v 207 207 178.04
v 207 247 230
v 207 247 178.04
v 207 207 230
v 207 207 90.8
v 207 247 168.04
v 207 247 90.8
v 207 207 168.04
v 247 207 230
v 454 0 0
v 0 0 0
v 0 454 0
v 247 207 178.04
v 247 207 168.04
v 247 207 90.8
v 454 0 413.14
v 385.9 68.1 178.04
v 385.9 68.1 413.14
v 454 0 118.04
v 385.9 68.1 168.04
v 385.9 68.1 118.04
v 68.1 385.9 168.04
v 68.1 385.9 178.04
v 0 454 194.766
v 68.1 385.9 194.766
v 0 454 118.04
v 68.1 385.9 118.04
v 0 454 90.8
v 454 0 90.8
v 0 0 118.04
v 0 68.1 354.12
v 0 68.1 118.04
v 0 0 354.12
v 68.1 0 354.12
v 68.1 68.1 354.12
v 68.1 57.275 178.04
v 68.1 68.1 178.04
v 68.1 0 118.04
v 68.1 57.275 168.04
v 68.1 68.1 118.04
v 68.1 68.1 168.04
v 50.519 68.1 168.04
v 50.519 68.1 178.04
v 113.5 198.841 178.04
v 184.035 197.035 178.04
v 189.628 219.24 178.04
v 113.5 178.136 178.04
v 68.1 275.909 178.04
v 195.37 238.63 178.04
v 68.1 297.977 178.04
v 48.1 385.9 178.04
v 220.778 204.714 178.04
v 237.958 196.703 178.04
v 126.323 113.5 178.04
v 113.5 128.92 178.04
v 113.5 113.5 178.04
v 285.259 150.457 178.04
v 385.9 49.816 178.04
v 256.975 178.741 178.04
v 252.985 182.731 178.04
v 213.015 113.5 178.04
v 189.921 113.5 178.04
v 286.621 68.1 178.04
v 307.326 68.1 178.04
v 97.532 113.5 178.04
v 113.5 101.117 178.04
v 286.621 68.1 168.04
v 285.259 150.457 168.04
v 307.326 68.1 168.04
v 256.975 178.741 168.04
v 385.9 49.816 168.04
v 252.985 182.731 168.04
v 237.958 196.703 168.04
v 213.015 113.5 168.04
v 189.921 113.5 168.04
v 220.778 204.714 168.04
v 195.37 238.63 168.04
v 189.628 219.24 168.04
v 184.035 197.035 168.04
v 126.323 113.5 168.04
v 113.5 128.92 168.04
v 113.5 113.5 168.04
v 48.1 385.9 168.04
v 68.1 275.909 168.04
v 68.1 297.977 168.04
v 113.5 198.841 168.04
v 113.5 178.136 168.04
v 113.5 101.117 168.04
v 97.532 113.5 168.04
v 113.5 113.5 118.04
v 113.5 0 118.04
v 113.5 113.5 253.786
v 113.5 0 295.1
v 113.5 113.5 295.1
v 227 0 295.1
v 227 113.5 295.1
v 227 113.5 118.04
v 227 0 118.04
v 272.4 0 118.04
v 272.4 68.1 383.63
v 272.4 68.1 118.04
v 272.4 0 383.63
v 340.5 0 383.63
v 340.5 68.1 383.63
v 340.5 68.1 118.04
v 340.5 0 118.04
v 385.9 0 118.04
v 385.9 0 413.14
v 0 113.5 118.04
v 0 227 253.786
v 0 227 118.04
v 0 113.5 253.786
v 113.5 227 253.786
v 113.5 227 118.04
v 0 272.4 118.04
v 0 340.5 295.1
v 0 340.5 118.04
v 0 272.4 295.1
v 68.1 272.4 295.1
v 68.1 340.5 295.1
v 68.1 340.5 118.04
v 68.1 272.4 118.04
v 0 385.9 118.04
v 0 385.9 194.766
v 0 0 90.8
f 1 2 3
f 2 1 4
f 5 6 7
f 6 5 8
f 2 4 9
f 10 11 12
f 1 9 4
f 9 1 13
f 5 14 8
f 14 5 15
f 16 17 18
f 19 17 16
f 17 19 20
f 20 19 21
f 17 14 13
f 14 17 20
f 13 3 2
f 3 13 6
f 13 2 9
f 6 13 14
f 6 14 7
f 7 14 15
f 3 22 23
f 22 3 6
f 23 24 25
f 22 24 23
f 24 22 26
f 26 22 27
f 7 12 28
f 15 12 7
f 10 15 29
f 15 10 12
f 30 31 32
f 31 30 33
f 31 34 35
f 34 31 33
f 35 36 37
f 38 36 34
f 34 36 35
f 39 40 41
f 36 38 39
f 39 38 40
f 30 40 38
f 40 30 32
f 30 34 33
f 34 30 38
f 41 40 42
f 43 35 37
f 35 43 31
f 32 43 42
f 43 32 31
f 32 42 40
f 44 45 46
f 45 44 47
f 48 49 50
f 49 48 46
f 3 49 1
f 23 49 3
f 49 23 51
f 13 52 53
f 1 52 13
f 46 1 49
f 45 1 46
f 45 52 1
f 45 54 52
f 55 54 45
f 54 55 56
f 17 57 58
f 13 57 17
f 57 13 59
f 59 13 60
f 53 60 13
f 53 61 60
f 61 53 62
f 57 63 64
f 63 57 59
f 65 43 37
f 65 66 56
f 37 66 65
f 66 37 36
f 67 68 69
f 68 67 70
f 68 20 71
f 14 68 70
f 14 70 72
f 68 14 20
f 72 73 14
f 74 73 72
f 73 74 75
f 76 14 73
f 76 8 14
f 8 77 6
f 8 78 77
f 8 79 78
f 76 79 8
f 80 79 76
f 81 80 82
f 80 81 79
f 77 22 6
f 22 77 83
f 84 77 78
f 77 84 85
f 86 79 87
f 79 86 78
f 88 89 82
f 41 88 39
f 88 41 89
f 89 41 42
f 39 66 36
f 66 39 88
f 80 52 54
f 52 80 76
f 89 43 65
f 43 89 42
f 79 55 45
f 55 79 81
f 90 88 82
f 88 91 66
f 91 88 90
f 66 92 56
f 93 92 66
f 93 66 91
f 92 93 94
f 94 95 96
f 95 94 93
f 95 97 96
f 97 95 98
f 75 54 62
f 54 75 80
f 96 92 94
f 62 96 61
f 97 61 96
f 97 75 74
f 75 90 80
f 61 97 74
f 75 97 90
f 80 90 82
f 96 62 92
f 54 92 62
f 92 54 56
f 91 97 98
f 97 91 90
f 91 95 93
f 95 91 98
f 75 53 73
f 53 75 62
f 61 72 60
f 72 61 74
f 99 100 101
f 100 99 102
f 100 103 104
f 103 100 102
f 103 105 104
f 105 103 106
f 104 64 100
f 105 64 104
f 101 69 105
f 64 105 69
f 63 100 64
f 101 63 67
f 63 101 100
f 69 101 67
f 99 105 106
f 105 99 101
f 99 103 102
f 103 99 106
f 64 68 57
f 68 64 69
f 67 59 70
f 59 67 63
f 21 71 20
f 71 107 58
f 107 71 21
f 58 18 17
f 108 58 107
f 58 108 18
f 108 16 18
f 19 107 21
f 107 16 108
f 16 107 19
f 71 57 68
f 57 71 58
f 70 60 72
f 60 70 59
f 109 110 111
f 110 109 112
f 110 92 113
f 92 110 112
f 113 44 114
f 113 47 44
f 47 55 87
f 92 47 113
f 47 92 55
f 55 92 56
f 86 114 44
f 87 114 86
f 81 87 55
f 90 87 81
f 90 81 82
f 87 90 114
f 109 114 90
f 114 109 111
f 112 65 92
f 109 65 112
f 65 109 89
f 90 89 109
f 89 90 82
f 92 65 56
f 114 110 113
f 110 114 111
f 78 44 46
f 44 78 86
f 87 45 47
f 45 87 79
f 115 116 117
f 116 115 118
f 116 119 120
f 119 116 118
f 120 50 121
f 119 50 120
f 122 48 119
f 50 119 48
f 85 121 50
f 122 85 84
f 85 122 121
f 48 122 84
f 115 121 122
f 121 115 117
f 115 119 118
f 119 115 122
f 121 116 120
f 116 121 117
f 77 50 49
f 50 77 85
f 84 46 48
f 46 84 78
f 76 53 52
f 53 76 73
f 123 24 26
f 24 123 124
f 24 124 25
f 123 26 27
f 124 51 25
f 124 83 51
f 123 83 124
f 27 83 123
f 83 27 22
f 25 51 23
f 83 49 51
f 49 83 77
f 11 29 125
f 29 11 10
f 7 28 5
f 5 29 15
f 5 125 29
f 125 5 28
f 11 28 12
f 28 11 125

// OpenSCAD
logo_base_size=454;
logo_base_height=logo_base_size*.20;

pillar_z_offset = 2;
pillar_7_x_scale = .25;
pillar_7_z_scale =  5;

pillar_spacing = .1;
pillar_vs_base_scaling_factor = .65;

normal_pillar_base = .15;
wide_pillar_base = .25;


analytics_pillar_support_height = 230;

module analytics_pillar(base_ratio, 
                        height_ratio,
                        x_offset_ratio, 
                        y_offset_ratio, 
                        z_offset_ratio,
                        support_angle){

    difference(){
        pillar_base = logo_base_size * base_ratio;
        pillar_height = logo_base_height * height_ratio;
        
        if(y_offset_ratio > 0) {
                y_offset = (y_offset_ratio * logo_base_size) - pillar_base;
                translate([0,
                    y_offset, 
                    z_offset_ratio*logo_base_height])
                       
            union(){
                cube([pillar_base,pillar_base,pillar_height]);
                color("red")
                translate([pillar_base/2-10, pillar_base/2-10,50])
                rotate(support_angle)
                cube([300, 20, 10]);
            }
            
        } else {
            translate([(x_offset_ratio * logo_base_size) - pillar_base,
                (y_offset_ratio * logo_base_size), 
                 z_offset_ratio*logo_base_height]) 
            
            union(){
                cube([pillar_base,pillar_base,pillar_height]);
                color("red")
                translate([pillar_base/2+10,pillar_base/2,50])
                rotate(support_angle)
                cube([300, 20, 10]);
            }
                      
        }
        
        linear_extrude(1000)
            polygon(points =[
                                [logo_base_size,logo_base_size],
                                [logo_base_size,0],
                                [0,logo_base_size]
                             ]
            );
        
    }
    
    
}




difference(){
    union(){
        //base
        linear_extrude(logo_base_height)
            polygon(points =[
                                [0,0],
                                [logo_base_size,0],
                                [0,logo_base_size]
                            ]
                    );



        //Origin
        analytics_pillar(base_ratio=normal_pillar_base, 
                         height_ratio = 4* pillar_vs_base_scaling_factor, 
                         x_offset_ratio = normal_pillar_base,
                         y_offset_ratio = 0, 
                         z_offset_ratio = 1.3,
                         support_angle=44);

        //X-Pillars
        analytics_pillar(base_ratio=wide_pillar_base, 
                         height_ratio = 3* pillar_vs_base_scaling_factor, 
                         x_offset_ratio = 1- (2 * normal_pillar_base + 2* pillar_spacing), 
                         y_offset_ratio = 0, 
                         z_offset_ratio = 1.3,
                         support_angle=60);

        analytics_pillar(base_ratio=normal_pillar_base, 
                         height_ratio = 4.5* pillar_vs_base_scaling_factor, 
                         x_offset_ratio = 1 - (normal_pillar_base + pillar_spacing),
                         y_offset_ratio = 0, 
                         z_offset_ratio = 1.3,
                         support_angle=105);

        analytics_pillar(base_ratio=normal_pillar_base, 
                         height_ratio = 5 * pillar_vs_base_scaling_factor, 
                         x_offset_ratio = 1,
                         y_offset_ratio = 0, 
                         z_offset_ratio = 1.3,
                         support_angle=135);
                         
                         
        //Y-Pillars
        analytics_pillar(base_ratio=wide_pillar_base, 
                         height_ratio = 2.3* pillar_vs_base_scaling_factor, 
                         x_offset_ratio = 0,
                         y_offset_ratio = 1- (2 * normal_pillar_base + 2* pillar_spacing), 
                         z_offset_ratio = 1.3,
                         support_angle=15);

        analytics_pillar(base_ratio=normal_pillar_base, 
                         height_ratio = 3* pillar_vs_base_scaling_factor, 
                         x_offset_ratio = 0,
                         y_offset_ratio = 1 - (normal_pillar_base + pillar_spacing), 
                         z_offset_ratio = 1.3,
                         support_angle=-25);

        analytics_pillar(base_ratio=normal_pillar_base, 
                         height_ratio = 1.3 * pillar_vs_base_scaling_factor, 
                         x_offset_ratio = 0,
                         y_offset_ratio = 1, 
                         z_offset_ratio = 1.3,
                         support_angle=-45);
             
        difference(){
            translate([logo_base_size/2-20,logo_base_size/2-20,0])
            cube([40,40,230]);
            linear_extrude(1000)
                    polygon(points =[
                                        [logo_base_size,logo_base_size],
                                        [logo_base_size,0],
                                        [0,logo_base_size]
                                     ]
                    );
        }
    }
/*
    linear_extrude(1000)
                polygon(points =[
                                    [logo_base_size,logo_base_size],
                                    [0,0],
                                    [0,logo_base_size]
                                 ]
                );
    */
}
